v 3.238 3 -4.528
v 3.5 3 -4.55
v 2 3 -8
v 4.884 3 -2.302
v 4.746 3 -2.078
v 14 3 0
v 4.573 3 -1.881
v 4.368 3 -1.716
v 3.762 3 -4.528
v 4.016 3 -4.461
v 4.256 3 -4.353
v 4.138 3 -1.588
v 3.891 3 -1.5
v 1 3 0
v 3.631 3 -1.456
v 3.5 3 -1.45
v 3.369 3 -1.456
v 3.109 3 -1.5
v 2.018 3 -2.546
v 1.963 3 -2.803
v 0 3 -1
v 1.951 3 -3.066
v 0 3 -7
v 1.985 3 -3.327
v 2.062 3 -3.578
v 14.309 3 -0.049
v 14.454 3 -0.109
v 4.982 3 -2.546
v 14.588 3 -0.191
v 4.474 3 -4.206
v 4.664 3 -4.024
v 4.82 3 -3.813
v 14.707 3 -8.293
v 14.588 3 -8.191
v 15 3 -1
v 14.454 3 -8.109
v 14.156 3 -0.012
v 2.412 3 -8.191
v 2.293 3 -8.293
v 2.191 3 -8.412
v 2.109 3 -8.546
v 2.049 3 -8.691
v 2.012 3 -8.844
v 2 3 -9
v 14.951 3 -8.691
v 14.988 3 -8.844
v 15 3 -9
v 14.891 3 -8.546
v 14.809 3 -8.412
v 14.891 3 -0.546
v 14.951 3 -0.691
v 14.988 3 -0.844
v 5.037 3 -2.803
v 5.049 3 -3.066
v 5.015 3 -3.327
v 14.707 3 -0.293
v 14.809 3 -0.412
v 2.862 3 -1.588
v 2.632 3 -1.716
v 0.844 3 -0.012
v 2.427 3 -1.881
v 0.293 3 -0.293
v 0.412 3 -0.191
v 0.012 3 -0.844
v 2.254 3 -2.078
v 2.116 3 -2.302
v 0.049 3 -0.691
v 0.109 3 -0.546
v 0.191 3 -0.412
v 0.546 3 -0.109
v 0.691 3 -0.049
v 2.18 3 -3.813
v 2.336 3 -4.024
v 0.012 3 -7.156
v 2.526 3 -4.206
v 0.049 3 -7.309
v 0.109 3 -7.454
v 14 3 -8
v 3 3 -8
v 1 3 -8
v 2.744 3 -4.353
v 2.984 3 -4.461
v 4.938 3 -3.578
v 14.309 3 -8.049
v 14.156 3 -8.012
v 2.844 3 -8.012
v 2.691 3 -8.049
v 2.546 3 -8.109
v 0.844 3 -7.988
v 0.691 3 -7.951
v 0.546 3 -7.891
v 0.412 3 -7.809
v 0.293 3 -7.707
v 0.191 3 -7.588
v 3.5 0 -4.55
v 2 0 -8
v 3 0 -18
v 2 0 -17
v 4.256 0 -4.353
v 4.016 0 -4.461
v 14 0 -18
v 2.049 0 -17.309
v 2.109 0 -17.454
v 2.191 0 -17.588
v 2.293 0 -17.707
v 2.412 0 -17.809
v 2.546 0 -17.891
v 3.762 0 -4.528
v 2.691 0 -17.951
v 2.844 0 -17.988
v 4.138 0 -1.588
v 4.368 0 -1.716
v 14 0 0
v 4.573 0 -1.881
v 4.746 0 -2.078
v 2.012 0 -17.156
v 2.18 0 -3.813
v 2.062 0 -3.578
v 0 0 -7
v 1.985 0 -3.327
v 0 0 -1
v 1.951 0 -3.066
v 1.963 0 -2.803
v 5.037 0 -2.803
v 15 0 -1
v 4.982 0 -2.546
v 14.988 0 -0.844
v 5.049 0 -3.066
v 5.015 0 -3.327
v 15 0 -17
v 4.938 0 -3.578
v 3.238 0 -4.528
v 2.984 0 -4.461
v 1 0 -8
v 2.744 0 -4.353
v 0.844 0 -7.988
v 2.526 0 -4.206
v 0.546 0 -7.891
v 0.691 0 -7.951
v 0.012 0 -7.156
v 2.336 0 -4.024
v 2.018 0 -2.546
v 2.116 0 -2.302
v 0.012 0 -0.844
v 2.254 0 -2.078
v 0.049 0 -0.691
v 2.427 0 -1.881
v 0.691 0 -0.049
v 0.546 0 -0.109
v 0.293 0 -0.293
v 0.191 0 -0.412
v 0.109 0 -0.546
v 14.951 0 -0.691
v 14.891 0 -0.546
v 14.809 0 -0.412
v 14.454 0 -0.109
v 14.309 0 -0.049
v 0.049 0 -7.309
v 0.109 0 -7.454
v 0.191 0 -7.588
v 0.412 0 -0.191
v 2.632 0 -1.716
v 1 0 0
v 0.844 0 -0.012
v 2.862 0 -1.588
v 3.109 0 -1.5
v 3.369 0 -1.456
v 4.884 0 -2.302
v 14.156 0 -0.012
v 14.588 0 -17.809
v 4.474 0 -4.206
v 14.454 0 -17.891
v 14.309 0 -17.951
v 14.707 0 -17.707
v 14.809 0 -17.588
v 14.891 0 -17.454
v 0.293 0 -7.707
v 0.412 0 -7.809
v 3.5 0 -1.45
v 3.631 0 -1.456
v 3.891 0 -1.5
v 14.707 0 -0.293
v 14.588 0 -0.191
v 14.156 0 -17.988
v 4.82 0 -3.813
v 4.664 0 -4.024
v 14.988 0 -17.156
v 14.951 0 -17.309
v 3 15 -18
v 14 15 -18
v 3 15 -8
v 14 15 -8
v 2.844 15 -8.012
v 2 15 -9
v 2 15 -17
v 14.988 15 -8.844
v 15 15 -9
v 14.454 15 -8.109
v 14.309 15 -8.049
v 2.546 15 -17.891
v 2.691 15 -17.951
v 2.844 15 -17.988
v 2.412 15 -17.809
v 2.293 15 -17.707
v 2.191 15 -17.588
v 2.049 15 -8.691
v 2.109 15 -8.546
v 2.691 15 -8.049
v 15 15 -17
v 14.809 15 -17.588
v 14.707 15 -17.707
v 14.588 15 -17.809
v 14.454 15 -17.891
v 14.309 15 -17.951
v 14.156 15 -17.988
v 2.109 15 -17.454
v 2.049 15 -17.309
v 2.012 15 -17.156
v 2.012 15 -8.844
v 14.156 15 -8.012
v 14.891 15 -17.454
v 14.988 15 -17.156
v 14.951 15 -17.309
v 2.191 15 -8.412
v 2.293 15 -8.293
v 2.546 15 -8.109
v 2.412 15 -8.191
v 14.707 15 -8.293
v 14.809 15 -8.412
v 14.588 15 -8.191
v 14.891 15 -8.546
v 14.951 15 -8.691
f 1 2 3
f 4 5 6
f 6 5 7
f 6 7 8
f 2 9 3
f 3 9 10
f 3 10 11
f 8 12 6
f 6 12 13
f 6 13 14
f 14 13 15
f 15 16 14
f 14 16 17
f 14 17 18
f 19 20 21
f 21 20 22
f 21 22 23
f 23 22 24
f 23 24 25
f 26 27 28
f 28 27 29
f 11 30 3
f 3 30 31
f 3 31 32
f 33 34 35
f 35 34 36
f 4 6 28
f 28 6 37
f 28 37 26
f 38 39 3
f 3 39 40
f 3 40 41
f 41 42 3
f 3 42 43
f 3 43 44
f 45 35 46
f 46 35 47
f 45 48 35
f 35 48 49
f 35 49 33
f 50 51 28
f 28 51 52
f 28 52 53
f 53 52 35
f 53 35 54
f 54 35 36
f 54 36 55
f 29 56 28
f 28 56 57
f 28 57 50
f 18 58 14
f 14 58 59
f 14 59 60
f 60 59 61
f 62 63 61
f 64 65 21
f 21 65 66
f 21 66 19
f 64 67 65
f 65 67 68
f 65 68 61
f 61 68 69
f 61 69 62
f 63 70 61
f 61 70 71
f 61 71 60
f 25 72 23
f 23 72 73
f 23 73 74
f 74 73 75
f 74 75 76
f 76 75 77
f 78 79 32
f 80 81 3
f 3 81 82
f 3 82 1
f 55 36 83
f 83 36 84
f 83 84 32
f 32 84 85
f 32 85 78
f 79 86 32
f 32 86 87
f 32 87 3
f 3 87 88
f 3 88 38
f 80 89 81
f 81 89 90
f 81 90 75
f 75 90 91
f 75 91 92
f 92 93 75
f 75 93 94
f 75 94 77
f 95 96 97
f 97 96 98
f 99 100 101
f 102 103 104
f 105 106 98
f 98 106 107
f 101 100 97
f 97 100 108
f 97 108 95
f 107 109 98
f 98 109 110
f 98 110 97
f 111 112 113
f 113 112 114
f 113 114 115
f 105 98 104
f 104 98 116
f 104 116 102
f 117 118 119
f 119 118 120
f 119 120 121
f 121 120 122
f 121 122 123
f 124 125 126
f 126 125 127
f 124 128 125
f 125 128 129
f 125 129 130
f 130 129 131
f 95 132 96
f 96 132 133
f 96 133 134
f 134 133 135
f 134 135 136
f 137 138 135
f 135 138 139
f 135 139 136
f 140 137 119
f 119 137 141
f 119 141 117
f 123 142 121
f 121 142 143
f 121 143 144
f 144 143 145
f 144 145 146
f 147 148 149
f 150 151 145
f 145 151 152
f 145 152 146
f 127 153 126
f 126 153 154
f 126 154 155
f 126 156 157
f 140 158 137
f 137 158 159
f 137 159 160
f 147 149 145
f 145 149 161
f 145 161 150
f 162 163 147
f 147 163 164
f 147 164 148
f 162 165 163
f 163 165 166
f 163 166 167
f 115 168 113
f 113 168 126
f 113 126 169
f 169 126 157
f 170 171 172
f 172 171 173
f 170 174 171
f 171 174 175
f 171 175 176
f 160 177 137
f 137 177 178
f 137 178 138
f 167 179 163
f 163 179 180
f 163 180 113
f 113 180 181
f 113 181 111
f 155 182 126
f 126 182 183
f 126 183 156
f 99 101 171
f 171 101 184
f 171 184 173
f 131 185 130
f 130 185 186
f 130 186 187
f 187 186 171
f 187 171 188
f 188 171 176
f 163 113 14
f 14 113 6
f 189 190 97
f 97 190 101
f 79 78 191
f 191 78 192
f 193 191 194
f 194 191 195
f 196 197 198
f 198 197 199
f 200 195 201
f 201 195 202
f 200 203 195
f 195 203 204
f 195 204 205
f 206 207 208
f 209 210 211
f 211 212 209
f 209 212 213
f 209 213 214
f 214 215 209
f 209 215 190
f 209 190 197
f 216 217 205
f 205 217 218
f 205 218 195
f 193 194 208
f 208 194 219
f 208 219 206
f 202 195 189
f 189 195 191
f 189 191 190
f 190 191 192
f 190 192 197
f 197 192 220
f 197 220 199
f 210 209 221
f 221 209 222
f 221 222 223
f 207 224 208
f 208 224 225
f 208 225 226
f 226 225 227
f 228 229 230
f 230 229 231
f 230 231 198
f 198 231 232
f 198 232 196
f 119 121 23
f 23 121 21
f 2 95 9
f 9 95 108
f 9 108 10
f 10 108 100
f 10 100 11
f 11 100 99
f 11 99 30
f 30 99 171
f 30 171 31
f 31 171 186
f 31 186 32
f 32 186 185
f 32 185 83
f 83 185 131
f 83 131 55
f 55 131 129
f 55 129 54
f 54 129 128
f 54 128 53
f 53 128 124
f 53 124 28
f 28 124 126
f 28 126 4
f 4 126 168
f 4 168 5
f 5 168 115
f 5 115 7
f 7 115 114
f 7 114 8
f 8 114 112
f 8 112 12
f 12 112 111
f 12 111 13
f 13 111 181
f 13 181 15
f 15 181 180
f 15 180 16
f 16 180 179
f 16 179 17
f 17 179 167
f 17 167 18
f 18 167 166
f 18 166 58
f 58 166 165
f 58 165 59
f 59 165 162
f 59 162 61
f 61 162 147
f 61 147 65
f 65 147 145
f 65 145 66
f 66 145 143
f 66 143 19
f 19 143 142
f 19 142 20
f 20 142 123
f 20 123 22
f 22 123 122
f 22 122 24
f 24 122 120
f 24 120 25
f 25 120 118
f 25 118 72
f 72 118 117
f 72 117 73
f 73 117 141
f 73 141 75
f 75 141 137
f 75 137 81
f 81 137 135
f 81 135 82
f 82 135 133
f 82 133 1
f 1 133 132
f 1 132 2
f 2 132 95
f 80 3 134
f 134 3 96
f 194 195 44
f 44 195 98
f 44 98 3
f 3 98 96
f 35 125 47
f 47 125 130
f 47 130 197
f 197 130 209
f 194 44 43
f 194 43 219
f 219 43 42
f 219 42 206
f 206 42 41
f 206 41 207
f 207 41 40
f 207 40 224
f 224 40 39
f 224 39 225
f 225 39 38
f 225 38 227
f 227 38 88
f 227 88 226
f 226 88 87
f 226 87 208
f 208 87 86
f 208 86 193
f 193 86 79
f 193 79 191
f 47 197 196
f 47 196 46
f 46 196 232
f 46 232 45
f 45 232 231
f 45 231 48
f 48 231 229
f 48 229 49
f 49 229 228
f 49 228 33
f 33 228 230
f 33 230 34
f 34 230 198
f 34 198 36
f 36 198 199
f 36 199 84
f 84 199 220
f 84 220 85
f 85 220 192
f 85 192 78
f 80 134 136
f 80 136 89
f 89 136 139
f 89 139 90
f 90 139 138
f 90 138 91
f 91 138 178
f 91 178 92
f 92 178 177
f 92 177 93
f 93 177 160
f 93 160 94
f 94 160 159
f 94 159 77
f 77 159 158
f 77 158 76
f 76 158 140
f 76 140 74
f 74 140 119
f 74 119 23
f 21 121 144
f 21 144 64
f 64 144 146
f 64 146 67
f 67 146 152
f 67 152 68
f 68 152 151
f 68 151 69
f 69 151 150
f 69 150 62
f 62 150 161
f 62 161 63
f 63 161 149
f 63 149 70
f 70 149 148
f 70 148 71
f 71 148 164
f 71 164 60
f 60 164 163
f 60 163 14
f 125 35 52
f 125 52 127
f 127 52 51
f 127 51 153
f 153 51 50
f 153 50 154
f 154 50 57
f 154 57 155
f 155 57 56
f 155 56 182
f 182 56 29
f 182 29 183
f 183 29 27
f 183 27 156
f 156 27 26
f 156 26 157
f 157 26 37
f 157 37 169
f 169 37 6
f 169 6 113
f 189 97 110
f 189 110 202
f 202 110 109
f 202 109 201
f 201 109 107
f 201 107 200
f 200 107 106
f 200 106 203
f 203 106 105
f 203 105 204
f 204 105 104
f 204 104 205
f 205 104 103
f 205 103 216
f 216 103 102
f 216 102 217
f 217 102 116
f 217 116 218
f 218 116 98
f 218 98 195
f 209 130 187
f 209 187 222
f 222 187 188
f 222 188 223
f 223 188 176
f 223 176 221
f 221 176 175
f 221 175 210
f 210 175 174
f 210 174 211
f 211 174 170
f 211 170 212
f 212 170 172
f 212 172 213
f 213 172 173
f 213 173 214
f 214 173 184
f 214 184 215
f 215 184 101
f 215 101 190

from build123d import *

# Parameters (mm, degrees)
CROQUIS1_W              = 18
CROQUIS1_H              = 18
CROQUIS1_R              = 1.55
SALIENTE_EXTRUIR1_DEPTH = 3
CROQUIS3_W              = 18
CROQUIS3_H              = 10
SALIENTE_EXTRUIR3_DEPTH = 3
CORTAR_EXTRUIR1_REACH   = 28.153
CROQUIS4_W              = 2
CROQUIS4_H              = 10
CROQUIS14_W             = 16
CROQUIS14_H             = 10
SALIENTE_EXTRUIR8_DEPTH = 9
CORTAR_EXTRUIR2_DEPTH   = 3
REDONDEO1_R             = 1


with BuildPart() as part:
    # Croquis1 → Saliente-Extruir1 (new body)
    with BuildSketch(Plane(origin=(0, 0, 0), x_dir=(1, 0, 0), z_dir=(0, 1, 0))):
        with Locations((9, 9)):
            Rectangle(CROQUIS1_W, CROQUIS1_H)
        with Locations(Location((3.5, 3, 0), (0, 0, 270))):
            Circle(CROQUIS1_R, mode=Mode.SUBTRACT)
    extrude(amount=SALIENTE_EXTRUIR1_DEPTH)

    # Croquis3 → Saliente-Extruir3 (add)
    with BuildSketch(Plane(origin=(0, 3, 0), x_dir=(1, 0, 0), z_dir=(0, 1, 0))):
        with Locations((9, 13)):
            Rectangle(CROQUIS3_W, CROQUIS3_H)
    extrude(amount=SALIENTE_EXTRUIR3_DEPTH)

    # Cortar-Extruir1: up to this face of the body (flat: up to its plane)
    cortar_extruir1_end = Plane(part.part.faces().sort_by_distance((9, 6, -13))[0])
    # Croquis4 → Cortar-Extruir1 (cut, up to the picked face)
    with BuildSketch(Plane.XZ, mode=Mode.PRIVATE) as cortar_extruir1_sk1:
        with Locations((1, -13)):
            Rectangle(CROQUIS4_W, CROQUIS4_H)
    cortar_extruir1_tool1 = split(extrude(cortar_extruir1_sk1.sketch, amount=-CORTAR_EXTRUIR1_REACH, mode=Mode.PRIVATE), bisect_by=cortar_extruir1_end, keep=Keep.BOTH, mode=Mode.PRIVATE)
    add(cortar_extruir1_tool1.solids().sort_by(Axis((1, 0, -13), (0, 1, 0)))[0], mode=Mode.SUBTRACT)

    # Croquis14 → Saliente-Extruir8 (add)
    with BuildSketch(Plane(origin=(0, 6, 0), x_dir=(1, 0, 0), z_dir=(0, 1, 0))):
        with Locations((10, 13)):
            Rectangle(CROQUIS14_W, CROQUIS14_H)
    extrude(amount=SALIENTE_EXTRUIR8_DEPTH)

    # Croquis15 → Cortar-Extruir2 (cut)
    with BuildSketch(Plane(origin=(18, 0, 0), x_dir=(0, 0, -1), z_dir=(1, 0, 0))):
        Polygon((0, 0), (18, 0), (18, 15), (8, 15), (8, 3), (0, 3), align=None)
    extrude(amount=-CORTAR_EXTRUIR2_DEPTH, mode=Mode.SUBTRACT)

    # Redondeo1
    redondeo1_edges = [part.edges().sort_by_distance(p)[0] for p in [
        (0, 1.5, -8),
        (2, 7.5, -18),
        (2, 9, -8),
        (15, 1.5, 0),
        (15, 9, -8),
        (15, 7.5, -18),
        (0, 1.5, 0),
    ]]
    fillet(redondeo1_edges, radius=REDONDEO1_R)


solid = part.part
